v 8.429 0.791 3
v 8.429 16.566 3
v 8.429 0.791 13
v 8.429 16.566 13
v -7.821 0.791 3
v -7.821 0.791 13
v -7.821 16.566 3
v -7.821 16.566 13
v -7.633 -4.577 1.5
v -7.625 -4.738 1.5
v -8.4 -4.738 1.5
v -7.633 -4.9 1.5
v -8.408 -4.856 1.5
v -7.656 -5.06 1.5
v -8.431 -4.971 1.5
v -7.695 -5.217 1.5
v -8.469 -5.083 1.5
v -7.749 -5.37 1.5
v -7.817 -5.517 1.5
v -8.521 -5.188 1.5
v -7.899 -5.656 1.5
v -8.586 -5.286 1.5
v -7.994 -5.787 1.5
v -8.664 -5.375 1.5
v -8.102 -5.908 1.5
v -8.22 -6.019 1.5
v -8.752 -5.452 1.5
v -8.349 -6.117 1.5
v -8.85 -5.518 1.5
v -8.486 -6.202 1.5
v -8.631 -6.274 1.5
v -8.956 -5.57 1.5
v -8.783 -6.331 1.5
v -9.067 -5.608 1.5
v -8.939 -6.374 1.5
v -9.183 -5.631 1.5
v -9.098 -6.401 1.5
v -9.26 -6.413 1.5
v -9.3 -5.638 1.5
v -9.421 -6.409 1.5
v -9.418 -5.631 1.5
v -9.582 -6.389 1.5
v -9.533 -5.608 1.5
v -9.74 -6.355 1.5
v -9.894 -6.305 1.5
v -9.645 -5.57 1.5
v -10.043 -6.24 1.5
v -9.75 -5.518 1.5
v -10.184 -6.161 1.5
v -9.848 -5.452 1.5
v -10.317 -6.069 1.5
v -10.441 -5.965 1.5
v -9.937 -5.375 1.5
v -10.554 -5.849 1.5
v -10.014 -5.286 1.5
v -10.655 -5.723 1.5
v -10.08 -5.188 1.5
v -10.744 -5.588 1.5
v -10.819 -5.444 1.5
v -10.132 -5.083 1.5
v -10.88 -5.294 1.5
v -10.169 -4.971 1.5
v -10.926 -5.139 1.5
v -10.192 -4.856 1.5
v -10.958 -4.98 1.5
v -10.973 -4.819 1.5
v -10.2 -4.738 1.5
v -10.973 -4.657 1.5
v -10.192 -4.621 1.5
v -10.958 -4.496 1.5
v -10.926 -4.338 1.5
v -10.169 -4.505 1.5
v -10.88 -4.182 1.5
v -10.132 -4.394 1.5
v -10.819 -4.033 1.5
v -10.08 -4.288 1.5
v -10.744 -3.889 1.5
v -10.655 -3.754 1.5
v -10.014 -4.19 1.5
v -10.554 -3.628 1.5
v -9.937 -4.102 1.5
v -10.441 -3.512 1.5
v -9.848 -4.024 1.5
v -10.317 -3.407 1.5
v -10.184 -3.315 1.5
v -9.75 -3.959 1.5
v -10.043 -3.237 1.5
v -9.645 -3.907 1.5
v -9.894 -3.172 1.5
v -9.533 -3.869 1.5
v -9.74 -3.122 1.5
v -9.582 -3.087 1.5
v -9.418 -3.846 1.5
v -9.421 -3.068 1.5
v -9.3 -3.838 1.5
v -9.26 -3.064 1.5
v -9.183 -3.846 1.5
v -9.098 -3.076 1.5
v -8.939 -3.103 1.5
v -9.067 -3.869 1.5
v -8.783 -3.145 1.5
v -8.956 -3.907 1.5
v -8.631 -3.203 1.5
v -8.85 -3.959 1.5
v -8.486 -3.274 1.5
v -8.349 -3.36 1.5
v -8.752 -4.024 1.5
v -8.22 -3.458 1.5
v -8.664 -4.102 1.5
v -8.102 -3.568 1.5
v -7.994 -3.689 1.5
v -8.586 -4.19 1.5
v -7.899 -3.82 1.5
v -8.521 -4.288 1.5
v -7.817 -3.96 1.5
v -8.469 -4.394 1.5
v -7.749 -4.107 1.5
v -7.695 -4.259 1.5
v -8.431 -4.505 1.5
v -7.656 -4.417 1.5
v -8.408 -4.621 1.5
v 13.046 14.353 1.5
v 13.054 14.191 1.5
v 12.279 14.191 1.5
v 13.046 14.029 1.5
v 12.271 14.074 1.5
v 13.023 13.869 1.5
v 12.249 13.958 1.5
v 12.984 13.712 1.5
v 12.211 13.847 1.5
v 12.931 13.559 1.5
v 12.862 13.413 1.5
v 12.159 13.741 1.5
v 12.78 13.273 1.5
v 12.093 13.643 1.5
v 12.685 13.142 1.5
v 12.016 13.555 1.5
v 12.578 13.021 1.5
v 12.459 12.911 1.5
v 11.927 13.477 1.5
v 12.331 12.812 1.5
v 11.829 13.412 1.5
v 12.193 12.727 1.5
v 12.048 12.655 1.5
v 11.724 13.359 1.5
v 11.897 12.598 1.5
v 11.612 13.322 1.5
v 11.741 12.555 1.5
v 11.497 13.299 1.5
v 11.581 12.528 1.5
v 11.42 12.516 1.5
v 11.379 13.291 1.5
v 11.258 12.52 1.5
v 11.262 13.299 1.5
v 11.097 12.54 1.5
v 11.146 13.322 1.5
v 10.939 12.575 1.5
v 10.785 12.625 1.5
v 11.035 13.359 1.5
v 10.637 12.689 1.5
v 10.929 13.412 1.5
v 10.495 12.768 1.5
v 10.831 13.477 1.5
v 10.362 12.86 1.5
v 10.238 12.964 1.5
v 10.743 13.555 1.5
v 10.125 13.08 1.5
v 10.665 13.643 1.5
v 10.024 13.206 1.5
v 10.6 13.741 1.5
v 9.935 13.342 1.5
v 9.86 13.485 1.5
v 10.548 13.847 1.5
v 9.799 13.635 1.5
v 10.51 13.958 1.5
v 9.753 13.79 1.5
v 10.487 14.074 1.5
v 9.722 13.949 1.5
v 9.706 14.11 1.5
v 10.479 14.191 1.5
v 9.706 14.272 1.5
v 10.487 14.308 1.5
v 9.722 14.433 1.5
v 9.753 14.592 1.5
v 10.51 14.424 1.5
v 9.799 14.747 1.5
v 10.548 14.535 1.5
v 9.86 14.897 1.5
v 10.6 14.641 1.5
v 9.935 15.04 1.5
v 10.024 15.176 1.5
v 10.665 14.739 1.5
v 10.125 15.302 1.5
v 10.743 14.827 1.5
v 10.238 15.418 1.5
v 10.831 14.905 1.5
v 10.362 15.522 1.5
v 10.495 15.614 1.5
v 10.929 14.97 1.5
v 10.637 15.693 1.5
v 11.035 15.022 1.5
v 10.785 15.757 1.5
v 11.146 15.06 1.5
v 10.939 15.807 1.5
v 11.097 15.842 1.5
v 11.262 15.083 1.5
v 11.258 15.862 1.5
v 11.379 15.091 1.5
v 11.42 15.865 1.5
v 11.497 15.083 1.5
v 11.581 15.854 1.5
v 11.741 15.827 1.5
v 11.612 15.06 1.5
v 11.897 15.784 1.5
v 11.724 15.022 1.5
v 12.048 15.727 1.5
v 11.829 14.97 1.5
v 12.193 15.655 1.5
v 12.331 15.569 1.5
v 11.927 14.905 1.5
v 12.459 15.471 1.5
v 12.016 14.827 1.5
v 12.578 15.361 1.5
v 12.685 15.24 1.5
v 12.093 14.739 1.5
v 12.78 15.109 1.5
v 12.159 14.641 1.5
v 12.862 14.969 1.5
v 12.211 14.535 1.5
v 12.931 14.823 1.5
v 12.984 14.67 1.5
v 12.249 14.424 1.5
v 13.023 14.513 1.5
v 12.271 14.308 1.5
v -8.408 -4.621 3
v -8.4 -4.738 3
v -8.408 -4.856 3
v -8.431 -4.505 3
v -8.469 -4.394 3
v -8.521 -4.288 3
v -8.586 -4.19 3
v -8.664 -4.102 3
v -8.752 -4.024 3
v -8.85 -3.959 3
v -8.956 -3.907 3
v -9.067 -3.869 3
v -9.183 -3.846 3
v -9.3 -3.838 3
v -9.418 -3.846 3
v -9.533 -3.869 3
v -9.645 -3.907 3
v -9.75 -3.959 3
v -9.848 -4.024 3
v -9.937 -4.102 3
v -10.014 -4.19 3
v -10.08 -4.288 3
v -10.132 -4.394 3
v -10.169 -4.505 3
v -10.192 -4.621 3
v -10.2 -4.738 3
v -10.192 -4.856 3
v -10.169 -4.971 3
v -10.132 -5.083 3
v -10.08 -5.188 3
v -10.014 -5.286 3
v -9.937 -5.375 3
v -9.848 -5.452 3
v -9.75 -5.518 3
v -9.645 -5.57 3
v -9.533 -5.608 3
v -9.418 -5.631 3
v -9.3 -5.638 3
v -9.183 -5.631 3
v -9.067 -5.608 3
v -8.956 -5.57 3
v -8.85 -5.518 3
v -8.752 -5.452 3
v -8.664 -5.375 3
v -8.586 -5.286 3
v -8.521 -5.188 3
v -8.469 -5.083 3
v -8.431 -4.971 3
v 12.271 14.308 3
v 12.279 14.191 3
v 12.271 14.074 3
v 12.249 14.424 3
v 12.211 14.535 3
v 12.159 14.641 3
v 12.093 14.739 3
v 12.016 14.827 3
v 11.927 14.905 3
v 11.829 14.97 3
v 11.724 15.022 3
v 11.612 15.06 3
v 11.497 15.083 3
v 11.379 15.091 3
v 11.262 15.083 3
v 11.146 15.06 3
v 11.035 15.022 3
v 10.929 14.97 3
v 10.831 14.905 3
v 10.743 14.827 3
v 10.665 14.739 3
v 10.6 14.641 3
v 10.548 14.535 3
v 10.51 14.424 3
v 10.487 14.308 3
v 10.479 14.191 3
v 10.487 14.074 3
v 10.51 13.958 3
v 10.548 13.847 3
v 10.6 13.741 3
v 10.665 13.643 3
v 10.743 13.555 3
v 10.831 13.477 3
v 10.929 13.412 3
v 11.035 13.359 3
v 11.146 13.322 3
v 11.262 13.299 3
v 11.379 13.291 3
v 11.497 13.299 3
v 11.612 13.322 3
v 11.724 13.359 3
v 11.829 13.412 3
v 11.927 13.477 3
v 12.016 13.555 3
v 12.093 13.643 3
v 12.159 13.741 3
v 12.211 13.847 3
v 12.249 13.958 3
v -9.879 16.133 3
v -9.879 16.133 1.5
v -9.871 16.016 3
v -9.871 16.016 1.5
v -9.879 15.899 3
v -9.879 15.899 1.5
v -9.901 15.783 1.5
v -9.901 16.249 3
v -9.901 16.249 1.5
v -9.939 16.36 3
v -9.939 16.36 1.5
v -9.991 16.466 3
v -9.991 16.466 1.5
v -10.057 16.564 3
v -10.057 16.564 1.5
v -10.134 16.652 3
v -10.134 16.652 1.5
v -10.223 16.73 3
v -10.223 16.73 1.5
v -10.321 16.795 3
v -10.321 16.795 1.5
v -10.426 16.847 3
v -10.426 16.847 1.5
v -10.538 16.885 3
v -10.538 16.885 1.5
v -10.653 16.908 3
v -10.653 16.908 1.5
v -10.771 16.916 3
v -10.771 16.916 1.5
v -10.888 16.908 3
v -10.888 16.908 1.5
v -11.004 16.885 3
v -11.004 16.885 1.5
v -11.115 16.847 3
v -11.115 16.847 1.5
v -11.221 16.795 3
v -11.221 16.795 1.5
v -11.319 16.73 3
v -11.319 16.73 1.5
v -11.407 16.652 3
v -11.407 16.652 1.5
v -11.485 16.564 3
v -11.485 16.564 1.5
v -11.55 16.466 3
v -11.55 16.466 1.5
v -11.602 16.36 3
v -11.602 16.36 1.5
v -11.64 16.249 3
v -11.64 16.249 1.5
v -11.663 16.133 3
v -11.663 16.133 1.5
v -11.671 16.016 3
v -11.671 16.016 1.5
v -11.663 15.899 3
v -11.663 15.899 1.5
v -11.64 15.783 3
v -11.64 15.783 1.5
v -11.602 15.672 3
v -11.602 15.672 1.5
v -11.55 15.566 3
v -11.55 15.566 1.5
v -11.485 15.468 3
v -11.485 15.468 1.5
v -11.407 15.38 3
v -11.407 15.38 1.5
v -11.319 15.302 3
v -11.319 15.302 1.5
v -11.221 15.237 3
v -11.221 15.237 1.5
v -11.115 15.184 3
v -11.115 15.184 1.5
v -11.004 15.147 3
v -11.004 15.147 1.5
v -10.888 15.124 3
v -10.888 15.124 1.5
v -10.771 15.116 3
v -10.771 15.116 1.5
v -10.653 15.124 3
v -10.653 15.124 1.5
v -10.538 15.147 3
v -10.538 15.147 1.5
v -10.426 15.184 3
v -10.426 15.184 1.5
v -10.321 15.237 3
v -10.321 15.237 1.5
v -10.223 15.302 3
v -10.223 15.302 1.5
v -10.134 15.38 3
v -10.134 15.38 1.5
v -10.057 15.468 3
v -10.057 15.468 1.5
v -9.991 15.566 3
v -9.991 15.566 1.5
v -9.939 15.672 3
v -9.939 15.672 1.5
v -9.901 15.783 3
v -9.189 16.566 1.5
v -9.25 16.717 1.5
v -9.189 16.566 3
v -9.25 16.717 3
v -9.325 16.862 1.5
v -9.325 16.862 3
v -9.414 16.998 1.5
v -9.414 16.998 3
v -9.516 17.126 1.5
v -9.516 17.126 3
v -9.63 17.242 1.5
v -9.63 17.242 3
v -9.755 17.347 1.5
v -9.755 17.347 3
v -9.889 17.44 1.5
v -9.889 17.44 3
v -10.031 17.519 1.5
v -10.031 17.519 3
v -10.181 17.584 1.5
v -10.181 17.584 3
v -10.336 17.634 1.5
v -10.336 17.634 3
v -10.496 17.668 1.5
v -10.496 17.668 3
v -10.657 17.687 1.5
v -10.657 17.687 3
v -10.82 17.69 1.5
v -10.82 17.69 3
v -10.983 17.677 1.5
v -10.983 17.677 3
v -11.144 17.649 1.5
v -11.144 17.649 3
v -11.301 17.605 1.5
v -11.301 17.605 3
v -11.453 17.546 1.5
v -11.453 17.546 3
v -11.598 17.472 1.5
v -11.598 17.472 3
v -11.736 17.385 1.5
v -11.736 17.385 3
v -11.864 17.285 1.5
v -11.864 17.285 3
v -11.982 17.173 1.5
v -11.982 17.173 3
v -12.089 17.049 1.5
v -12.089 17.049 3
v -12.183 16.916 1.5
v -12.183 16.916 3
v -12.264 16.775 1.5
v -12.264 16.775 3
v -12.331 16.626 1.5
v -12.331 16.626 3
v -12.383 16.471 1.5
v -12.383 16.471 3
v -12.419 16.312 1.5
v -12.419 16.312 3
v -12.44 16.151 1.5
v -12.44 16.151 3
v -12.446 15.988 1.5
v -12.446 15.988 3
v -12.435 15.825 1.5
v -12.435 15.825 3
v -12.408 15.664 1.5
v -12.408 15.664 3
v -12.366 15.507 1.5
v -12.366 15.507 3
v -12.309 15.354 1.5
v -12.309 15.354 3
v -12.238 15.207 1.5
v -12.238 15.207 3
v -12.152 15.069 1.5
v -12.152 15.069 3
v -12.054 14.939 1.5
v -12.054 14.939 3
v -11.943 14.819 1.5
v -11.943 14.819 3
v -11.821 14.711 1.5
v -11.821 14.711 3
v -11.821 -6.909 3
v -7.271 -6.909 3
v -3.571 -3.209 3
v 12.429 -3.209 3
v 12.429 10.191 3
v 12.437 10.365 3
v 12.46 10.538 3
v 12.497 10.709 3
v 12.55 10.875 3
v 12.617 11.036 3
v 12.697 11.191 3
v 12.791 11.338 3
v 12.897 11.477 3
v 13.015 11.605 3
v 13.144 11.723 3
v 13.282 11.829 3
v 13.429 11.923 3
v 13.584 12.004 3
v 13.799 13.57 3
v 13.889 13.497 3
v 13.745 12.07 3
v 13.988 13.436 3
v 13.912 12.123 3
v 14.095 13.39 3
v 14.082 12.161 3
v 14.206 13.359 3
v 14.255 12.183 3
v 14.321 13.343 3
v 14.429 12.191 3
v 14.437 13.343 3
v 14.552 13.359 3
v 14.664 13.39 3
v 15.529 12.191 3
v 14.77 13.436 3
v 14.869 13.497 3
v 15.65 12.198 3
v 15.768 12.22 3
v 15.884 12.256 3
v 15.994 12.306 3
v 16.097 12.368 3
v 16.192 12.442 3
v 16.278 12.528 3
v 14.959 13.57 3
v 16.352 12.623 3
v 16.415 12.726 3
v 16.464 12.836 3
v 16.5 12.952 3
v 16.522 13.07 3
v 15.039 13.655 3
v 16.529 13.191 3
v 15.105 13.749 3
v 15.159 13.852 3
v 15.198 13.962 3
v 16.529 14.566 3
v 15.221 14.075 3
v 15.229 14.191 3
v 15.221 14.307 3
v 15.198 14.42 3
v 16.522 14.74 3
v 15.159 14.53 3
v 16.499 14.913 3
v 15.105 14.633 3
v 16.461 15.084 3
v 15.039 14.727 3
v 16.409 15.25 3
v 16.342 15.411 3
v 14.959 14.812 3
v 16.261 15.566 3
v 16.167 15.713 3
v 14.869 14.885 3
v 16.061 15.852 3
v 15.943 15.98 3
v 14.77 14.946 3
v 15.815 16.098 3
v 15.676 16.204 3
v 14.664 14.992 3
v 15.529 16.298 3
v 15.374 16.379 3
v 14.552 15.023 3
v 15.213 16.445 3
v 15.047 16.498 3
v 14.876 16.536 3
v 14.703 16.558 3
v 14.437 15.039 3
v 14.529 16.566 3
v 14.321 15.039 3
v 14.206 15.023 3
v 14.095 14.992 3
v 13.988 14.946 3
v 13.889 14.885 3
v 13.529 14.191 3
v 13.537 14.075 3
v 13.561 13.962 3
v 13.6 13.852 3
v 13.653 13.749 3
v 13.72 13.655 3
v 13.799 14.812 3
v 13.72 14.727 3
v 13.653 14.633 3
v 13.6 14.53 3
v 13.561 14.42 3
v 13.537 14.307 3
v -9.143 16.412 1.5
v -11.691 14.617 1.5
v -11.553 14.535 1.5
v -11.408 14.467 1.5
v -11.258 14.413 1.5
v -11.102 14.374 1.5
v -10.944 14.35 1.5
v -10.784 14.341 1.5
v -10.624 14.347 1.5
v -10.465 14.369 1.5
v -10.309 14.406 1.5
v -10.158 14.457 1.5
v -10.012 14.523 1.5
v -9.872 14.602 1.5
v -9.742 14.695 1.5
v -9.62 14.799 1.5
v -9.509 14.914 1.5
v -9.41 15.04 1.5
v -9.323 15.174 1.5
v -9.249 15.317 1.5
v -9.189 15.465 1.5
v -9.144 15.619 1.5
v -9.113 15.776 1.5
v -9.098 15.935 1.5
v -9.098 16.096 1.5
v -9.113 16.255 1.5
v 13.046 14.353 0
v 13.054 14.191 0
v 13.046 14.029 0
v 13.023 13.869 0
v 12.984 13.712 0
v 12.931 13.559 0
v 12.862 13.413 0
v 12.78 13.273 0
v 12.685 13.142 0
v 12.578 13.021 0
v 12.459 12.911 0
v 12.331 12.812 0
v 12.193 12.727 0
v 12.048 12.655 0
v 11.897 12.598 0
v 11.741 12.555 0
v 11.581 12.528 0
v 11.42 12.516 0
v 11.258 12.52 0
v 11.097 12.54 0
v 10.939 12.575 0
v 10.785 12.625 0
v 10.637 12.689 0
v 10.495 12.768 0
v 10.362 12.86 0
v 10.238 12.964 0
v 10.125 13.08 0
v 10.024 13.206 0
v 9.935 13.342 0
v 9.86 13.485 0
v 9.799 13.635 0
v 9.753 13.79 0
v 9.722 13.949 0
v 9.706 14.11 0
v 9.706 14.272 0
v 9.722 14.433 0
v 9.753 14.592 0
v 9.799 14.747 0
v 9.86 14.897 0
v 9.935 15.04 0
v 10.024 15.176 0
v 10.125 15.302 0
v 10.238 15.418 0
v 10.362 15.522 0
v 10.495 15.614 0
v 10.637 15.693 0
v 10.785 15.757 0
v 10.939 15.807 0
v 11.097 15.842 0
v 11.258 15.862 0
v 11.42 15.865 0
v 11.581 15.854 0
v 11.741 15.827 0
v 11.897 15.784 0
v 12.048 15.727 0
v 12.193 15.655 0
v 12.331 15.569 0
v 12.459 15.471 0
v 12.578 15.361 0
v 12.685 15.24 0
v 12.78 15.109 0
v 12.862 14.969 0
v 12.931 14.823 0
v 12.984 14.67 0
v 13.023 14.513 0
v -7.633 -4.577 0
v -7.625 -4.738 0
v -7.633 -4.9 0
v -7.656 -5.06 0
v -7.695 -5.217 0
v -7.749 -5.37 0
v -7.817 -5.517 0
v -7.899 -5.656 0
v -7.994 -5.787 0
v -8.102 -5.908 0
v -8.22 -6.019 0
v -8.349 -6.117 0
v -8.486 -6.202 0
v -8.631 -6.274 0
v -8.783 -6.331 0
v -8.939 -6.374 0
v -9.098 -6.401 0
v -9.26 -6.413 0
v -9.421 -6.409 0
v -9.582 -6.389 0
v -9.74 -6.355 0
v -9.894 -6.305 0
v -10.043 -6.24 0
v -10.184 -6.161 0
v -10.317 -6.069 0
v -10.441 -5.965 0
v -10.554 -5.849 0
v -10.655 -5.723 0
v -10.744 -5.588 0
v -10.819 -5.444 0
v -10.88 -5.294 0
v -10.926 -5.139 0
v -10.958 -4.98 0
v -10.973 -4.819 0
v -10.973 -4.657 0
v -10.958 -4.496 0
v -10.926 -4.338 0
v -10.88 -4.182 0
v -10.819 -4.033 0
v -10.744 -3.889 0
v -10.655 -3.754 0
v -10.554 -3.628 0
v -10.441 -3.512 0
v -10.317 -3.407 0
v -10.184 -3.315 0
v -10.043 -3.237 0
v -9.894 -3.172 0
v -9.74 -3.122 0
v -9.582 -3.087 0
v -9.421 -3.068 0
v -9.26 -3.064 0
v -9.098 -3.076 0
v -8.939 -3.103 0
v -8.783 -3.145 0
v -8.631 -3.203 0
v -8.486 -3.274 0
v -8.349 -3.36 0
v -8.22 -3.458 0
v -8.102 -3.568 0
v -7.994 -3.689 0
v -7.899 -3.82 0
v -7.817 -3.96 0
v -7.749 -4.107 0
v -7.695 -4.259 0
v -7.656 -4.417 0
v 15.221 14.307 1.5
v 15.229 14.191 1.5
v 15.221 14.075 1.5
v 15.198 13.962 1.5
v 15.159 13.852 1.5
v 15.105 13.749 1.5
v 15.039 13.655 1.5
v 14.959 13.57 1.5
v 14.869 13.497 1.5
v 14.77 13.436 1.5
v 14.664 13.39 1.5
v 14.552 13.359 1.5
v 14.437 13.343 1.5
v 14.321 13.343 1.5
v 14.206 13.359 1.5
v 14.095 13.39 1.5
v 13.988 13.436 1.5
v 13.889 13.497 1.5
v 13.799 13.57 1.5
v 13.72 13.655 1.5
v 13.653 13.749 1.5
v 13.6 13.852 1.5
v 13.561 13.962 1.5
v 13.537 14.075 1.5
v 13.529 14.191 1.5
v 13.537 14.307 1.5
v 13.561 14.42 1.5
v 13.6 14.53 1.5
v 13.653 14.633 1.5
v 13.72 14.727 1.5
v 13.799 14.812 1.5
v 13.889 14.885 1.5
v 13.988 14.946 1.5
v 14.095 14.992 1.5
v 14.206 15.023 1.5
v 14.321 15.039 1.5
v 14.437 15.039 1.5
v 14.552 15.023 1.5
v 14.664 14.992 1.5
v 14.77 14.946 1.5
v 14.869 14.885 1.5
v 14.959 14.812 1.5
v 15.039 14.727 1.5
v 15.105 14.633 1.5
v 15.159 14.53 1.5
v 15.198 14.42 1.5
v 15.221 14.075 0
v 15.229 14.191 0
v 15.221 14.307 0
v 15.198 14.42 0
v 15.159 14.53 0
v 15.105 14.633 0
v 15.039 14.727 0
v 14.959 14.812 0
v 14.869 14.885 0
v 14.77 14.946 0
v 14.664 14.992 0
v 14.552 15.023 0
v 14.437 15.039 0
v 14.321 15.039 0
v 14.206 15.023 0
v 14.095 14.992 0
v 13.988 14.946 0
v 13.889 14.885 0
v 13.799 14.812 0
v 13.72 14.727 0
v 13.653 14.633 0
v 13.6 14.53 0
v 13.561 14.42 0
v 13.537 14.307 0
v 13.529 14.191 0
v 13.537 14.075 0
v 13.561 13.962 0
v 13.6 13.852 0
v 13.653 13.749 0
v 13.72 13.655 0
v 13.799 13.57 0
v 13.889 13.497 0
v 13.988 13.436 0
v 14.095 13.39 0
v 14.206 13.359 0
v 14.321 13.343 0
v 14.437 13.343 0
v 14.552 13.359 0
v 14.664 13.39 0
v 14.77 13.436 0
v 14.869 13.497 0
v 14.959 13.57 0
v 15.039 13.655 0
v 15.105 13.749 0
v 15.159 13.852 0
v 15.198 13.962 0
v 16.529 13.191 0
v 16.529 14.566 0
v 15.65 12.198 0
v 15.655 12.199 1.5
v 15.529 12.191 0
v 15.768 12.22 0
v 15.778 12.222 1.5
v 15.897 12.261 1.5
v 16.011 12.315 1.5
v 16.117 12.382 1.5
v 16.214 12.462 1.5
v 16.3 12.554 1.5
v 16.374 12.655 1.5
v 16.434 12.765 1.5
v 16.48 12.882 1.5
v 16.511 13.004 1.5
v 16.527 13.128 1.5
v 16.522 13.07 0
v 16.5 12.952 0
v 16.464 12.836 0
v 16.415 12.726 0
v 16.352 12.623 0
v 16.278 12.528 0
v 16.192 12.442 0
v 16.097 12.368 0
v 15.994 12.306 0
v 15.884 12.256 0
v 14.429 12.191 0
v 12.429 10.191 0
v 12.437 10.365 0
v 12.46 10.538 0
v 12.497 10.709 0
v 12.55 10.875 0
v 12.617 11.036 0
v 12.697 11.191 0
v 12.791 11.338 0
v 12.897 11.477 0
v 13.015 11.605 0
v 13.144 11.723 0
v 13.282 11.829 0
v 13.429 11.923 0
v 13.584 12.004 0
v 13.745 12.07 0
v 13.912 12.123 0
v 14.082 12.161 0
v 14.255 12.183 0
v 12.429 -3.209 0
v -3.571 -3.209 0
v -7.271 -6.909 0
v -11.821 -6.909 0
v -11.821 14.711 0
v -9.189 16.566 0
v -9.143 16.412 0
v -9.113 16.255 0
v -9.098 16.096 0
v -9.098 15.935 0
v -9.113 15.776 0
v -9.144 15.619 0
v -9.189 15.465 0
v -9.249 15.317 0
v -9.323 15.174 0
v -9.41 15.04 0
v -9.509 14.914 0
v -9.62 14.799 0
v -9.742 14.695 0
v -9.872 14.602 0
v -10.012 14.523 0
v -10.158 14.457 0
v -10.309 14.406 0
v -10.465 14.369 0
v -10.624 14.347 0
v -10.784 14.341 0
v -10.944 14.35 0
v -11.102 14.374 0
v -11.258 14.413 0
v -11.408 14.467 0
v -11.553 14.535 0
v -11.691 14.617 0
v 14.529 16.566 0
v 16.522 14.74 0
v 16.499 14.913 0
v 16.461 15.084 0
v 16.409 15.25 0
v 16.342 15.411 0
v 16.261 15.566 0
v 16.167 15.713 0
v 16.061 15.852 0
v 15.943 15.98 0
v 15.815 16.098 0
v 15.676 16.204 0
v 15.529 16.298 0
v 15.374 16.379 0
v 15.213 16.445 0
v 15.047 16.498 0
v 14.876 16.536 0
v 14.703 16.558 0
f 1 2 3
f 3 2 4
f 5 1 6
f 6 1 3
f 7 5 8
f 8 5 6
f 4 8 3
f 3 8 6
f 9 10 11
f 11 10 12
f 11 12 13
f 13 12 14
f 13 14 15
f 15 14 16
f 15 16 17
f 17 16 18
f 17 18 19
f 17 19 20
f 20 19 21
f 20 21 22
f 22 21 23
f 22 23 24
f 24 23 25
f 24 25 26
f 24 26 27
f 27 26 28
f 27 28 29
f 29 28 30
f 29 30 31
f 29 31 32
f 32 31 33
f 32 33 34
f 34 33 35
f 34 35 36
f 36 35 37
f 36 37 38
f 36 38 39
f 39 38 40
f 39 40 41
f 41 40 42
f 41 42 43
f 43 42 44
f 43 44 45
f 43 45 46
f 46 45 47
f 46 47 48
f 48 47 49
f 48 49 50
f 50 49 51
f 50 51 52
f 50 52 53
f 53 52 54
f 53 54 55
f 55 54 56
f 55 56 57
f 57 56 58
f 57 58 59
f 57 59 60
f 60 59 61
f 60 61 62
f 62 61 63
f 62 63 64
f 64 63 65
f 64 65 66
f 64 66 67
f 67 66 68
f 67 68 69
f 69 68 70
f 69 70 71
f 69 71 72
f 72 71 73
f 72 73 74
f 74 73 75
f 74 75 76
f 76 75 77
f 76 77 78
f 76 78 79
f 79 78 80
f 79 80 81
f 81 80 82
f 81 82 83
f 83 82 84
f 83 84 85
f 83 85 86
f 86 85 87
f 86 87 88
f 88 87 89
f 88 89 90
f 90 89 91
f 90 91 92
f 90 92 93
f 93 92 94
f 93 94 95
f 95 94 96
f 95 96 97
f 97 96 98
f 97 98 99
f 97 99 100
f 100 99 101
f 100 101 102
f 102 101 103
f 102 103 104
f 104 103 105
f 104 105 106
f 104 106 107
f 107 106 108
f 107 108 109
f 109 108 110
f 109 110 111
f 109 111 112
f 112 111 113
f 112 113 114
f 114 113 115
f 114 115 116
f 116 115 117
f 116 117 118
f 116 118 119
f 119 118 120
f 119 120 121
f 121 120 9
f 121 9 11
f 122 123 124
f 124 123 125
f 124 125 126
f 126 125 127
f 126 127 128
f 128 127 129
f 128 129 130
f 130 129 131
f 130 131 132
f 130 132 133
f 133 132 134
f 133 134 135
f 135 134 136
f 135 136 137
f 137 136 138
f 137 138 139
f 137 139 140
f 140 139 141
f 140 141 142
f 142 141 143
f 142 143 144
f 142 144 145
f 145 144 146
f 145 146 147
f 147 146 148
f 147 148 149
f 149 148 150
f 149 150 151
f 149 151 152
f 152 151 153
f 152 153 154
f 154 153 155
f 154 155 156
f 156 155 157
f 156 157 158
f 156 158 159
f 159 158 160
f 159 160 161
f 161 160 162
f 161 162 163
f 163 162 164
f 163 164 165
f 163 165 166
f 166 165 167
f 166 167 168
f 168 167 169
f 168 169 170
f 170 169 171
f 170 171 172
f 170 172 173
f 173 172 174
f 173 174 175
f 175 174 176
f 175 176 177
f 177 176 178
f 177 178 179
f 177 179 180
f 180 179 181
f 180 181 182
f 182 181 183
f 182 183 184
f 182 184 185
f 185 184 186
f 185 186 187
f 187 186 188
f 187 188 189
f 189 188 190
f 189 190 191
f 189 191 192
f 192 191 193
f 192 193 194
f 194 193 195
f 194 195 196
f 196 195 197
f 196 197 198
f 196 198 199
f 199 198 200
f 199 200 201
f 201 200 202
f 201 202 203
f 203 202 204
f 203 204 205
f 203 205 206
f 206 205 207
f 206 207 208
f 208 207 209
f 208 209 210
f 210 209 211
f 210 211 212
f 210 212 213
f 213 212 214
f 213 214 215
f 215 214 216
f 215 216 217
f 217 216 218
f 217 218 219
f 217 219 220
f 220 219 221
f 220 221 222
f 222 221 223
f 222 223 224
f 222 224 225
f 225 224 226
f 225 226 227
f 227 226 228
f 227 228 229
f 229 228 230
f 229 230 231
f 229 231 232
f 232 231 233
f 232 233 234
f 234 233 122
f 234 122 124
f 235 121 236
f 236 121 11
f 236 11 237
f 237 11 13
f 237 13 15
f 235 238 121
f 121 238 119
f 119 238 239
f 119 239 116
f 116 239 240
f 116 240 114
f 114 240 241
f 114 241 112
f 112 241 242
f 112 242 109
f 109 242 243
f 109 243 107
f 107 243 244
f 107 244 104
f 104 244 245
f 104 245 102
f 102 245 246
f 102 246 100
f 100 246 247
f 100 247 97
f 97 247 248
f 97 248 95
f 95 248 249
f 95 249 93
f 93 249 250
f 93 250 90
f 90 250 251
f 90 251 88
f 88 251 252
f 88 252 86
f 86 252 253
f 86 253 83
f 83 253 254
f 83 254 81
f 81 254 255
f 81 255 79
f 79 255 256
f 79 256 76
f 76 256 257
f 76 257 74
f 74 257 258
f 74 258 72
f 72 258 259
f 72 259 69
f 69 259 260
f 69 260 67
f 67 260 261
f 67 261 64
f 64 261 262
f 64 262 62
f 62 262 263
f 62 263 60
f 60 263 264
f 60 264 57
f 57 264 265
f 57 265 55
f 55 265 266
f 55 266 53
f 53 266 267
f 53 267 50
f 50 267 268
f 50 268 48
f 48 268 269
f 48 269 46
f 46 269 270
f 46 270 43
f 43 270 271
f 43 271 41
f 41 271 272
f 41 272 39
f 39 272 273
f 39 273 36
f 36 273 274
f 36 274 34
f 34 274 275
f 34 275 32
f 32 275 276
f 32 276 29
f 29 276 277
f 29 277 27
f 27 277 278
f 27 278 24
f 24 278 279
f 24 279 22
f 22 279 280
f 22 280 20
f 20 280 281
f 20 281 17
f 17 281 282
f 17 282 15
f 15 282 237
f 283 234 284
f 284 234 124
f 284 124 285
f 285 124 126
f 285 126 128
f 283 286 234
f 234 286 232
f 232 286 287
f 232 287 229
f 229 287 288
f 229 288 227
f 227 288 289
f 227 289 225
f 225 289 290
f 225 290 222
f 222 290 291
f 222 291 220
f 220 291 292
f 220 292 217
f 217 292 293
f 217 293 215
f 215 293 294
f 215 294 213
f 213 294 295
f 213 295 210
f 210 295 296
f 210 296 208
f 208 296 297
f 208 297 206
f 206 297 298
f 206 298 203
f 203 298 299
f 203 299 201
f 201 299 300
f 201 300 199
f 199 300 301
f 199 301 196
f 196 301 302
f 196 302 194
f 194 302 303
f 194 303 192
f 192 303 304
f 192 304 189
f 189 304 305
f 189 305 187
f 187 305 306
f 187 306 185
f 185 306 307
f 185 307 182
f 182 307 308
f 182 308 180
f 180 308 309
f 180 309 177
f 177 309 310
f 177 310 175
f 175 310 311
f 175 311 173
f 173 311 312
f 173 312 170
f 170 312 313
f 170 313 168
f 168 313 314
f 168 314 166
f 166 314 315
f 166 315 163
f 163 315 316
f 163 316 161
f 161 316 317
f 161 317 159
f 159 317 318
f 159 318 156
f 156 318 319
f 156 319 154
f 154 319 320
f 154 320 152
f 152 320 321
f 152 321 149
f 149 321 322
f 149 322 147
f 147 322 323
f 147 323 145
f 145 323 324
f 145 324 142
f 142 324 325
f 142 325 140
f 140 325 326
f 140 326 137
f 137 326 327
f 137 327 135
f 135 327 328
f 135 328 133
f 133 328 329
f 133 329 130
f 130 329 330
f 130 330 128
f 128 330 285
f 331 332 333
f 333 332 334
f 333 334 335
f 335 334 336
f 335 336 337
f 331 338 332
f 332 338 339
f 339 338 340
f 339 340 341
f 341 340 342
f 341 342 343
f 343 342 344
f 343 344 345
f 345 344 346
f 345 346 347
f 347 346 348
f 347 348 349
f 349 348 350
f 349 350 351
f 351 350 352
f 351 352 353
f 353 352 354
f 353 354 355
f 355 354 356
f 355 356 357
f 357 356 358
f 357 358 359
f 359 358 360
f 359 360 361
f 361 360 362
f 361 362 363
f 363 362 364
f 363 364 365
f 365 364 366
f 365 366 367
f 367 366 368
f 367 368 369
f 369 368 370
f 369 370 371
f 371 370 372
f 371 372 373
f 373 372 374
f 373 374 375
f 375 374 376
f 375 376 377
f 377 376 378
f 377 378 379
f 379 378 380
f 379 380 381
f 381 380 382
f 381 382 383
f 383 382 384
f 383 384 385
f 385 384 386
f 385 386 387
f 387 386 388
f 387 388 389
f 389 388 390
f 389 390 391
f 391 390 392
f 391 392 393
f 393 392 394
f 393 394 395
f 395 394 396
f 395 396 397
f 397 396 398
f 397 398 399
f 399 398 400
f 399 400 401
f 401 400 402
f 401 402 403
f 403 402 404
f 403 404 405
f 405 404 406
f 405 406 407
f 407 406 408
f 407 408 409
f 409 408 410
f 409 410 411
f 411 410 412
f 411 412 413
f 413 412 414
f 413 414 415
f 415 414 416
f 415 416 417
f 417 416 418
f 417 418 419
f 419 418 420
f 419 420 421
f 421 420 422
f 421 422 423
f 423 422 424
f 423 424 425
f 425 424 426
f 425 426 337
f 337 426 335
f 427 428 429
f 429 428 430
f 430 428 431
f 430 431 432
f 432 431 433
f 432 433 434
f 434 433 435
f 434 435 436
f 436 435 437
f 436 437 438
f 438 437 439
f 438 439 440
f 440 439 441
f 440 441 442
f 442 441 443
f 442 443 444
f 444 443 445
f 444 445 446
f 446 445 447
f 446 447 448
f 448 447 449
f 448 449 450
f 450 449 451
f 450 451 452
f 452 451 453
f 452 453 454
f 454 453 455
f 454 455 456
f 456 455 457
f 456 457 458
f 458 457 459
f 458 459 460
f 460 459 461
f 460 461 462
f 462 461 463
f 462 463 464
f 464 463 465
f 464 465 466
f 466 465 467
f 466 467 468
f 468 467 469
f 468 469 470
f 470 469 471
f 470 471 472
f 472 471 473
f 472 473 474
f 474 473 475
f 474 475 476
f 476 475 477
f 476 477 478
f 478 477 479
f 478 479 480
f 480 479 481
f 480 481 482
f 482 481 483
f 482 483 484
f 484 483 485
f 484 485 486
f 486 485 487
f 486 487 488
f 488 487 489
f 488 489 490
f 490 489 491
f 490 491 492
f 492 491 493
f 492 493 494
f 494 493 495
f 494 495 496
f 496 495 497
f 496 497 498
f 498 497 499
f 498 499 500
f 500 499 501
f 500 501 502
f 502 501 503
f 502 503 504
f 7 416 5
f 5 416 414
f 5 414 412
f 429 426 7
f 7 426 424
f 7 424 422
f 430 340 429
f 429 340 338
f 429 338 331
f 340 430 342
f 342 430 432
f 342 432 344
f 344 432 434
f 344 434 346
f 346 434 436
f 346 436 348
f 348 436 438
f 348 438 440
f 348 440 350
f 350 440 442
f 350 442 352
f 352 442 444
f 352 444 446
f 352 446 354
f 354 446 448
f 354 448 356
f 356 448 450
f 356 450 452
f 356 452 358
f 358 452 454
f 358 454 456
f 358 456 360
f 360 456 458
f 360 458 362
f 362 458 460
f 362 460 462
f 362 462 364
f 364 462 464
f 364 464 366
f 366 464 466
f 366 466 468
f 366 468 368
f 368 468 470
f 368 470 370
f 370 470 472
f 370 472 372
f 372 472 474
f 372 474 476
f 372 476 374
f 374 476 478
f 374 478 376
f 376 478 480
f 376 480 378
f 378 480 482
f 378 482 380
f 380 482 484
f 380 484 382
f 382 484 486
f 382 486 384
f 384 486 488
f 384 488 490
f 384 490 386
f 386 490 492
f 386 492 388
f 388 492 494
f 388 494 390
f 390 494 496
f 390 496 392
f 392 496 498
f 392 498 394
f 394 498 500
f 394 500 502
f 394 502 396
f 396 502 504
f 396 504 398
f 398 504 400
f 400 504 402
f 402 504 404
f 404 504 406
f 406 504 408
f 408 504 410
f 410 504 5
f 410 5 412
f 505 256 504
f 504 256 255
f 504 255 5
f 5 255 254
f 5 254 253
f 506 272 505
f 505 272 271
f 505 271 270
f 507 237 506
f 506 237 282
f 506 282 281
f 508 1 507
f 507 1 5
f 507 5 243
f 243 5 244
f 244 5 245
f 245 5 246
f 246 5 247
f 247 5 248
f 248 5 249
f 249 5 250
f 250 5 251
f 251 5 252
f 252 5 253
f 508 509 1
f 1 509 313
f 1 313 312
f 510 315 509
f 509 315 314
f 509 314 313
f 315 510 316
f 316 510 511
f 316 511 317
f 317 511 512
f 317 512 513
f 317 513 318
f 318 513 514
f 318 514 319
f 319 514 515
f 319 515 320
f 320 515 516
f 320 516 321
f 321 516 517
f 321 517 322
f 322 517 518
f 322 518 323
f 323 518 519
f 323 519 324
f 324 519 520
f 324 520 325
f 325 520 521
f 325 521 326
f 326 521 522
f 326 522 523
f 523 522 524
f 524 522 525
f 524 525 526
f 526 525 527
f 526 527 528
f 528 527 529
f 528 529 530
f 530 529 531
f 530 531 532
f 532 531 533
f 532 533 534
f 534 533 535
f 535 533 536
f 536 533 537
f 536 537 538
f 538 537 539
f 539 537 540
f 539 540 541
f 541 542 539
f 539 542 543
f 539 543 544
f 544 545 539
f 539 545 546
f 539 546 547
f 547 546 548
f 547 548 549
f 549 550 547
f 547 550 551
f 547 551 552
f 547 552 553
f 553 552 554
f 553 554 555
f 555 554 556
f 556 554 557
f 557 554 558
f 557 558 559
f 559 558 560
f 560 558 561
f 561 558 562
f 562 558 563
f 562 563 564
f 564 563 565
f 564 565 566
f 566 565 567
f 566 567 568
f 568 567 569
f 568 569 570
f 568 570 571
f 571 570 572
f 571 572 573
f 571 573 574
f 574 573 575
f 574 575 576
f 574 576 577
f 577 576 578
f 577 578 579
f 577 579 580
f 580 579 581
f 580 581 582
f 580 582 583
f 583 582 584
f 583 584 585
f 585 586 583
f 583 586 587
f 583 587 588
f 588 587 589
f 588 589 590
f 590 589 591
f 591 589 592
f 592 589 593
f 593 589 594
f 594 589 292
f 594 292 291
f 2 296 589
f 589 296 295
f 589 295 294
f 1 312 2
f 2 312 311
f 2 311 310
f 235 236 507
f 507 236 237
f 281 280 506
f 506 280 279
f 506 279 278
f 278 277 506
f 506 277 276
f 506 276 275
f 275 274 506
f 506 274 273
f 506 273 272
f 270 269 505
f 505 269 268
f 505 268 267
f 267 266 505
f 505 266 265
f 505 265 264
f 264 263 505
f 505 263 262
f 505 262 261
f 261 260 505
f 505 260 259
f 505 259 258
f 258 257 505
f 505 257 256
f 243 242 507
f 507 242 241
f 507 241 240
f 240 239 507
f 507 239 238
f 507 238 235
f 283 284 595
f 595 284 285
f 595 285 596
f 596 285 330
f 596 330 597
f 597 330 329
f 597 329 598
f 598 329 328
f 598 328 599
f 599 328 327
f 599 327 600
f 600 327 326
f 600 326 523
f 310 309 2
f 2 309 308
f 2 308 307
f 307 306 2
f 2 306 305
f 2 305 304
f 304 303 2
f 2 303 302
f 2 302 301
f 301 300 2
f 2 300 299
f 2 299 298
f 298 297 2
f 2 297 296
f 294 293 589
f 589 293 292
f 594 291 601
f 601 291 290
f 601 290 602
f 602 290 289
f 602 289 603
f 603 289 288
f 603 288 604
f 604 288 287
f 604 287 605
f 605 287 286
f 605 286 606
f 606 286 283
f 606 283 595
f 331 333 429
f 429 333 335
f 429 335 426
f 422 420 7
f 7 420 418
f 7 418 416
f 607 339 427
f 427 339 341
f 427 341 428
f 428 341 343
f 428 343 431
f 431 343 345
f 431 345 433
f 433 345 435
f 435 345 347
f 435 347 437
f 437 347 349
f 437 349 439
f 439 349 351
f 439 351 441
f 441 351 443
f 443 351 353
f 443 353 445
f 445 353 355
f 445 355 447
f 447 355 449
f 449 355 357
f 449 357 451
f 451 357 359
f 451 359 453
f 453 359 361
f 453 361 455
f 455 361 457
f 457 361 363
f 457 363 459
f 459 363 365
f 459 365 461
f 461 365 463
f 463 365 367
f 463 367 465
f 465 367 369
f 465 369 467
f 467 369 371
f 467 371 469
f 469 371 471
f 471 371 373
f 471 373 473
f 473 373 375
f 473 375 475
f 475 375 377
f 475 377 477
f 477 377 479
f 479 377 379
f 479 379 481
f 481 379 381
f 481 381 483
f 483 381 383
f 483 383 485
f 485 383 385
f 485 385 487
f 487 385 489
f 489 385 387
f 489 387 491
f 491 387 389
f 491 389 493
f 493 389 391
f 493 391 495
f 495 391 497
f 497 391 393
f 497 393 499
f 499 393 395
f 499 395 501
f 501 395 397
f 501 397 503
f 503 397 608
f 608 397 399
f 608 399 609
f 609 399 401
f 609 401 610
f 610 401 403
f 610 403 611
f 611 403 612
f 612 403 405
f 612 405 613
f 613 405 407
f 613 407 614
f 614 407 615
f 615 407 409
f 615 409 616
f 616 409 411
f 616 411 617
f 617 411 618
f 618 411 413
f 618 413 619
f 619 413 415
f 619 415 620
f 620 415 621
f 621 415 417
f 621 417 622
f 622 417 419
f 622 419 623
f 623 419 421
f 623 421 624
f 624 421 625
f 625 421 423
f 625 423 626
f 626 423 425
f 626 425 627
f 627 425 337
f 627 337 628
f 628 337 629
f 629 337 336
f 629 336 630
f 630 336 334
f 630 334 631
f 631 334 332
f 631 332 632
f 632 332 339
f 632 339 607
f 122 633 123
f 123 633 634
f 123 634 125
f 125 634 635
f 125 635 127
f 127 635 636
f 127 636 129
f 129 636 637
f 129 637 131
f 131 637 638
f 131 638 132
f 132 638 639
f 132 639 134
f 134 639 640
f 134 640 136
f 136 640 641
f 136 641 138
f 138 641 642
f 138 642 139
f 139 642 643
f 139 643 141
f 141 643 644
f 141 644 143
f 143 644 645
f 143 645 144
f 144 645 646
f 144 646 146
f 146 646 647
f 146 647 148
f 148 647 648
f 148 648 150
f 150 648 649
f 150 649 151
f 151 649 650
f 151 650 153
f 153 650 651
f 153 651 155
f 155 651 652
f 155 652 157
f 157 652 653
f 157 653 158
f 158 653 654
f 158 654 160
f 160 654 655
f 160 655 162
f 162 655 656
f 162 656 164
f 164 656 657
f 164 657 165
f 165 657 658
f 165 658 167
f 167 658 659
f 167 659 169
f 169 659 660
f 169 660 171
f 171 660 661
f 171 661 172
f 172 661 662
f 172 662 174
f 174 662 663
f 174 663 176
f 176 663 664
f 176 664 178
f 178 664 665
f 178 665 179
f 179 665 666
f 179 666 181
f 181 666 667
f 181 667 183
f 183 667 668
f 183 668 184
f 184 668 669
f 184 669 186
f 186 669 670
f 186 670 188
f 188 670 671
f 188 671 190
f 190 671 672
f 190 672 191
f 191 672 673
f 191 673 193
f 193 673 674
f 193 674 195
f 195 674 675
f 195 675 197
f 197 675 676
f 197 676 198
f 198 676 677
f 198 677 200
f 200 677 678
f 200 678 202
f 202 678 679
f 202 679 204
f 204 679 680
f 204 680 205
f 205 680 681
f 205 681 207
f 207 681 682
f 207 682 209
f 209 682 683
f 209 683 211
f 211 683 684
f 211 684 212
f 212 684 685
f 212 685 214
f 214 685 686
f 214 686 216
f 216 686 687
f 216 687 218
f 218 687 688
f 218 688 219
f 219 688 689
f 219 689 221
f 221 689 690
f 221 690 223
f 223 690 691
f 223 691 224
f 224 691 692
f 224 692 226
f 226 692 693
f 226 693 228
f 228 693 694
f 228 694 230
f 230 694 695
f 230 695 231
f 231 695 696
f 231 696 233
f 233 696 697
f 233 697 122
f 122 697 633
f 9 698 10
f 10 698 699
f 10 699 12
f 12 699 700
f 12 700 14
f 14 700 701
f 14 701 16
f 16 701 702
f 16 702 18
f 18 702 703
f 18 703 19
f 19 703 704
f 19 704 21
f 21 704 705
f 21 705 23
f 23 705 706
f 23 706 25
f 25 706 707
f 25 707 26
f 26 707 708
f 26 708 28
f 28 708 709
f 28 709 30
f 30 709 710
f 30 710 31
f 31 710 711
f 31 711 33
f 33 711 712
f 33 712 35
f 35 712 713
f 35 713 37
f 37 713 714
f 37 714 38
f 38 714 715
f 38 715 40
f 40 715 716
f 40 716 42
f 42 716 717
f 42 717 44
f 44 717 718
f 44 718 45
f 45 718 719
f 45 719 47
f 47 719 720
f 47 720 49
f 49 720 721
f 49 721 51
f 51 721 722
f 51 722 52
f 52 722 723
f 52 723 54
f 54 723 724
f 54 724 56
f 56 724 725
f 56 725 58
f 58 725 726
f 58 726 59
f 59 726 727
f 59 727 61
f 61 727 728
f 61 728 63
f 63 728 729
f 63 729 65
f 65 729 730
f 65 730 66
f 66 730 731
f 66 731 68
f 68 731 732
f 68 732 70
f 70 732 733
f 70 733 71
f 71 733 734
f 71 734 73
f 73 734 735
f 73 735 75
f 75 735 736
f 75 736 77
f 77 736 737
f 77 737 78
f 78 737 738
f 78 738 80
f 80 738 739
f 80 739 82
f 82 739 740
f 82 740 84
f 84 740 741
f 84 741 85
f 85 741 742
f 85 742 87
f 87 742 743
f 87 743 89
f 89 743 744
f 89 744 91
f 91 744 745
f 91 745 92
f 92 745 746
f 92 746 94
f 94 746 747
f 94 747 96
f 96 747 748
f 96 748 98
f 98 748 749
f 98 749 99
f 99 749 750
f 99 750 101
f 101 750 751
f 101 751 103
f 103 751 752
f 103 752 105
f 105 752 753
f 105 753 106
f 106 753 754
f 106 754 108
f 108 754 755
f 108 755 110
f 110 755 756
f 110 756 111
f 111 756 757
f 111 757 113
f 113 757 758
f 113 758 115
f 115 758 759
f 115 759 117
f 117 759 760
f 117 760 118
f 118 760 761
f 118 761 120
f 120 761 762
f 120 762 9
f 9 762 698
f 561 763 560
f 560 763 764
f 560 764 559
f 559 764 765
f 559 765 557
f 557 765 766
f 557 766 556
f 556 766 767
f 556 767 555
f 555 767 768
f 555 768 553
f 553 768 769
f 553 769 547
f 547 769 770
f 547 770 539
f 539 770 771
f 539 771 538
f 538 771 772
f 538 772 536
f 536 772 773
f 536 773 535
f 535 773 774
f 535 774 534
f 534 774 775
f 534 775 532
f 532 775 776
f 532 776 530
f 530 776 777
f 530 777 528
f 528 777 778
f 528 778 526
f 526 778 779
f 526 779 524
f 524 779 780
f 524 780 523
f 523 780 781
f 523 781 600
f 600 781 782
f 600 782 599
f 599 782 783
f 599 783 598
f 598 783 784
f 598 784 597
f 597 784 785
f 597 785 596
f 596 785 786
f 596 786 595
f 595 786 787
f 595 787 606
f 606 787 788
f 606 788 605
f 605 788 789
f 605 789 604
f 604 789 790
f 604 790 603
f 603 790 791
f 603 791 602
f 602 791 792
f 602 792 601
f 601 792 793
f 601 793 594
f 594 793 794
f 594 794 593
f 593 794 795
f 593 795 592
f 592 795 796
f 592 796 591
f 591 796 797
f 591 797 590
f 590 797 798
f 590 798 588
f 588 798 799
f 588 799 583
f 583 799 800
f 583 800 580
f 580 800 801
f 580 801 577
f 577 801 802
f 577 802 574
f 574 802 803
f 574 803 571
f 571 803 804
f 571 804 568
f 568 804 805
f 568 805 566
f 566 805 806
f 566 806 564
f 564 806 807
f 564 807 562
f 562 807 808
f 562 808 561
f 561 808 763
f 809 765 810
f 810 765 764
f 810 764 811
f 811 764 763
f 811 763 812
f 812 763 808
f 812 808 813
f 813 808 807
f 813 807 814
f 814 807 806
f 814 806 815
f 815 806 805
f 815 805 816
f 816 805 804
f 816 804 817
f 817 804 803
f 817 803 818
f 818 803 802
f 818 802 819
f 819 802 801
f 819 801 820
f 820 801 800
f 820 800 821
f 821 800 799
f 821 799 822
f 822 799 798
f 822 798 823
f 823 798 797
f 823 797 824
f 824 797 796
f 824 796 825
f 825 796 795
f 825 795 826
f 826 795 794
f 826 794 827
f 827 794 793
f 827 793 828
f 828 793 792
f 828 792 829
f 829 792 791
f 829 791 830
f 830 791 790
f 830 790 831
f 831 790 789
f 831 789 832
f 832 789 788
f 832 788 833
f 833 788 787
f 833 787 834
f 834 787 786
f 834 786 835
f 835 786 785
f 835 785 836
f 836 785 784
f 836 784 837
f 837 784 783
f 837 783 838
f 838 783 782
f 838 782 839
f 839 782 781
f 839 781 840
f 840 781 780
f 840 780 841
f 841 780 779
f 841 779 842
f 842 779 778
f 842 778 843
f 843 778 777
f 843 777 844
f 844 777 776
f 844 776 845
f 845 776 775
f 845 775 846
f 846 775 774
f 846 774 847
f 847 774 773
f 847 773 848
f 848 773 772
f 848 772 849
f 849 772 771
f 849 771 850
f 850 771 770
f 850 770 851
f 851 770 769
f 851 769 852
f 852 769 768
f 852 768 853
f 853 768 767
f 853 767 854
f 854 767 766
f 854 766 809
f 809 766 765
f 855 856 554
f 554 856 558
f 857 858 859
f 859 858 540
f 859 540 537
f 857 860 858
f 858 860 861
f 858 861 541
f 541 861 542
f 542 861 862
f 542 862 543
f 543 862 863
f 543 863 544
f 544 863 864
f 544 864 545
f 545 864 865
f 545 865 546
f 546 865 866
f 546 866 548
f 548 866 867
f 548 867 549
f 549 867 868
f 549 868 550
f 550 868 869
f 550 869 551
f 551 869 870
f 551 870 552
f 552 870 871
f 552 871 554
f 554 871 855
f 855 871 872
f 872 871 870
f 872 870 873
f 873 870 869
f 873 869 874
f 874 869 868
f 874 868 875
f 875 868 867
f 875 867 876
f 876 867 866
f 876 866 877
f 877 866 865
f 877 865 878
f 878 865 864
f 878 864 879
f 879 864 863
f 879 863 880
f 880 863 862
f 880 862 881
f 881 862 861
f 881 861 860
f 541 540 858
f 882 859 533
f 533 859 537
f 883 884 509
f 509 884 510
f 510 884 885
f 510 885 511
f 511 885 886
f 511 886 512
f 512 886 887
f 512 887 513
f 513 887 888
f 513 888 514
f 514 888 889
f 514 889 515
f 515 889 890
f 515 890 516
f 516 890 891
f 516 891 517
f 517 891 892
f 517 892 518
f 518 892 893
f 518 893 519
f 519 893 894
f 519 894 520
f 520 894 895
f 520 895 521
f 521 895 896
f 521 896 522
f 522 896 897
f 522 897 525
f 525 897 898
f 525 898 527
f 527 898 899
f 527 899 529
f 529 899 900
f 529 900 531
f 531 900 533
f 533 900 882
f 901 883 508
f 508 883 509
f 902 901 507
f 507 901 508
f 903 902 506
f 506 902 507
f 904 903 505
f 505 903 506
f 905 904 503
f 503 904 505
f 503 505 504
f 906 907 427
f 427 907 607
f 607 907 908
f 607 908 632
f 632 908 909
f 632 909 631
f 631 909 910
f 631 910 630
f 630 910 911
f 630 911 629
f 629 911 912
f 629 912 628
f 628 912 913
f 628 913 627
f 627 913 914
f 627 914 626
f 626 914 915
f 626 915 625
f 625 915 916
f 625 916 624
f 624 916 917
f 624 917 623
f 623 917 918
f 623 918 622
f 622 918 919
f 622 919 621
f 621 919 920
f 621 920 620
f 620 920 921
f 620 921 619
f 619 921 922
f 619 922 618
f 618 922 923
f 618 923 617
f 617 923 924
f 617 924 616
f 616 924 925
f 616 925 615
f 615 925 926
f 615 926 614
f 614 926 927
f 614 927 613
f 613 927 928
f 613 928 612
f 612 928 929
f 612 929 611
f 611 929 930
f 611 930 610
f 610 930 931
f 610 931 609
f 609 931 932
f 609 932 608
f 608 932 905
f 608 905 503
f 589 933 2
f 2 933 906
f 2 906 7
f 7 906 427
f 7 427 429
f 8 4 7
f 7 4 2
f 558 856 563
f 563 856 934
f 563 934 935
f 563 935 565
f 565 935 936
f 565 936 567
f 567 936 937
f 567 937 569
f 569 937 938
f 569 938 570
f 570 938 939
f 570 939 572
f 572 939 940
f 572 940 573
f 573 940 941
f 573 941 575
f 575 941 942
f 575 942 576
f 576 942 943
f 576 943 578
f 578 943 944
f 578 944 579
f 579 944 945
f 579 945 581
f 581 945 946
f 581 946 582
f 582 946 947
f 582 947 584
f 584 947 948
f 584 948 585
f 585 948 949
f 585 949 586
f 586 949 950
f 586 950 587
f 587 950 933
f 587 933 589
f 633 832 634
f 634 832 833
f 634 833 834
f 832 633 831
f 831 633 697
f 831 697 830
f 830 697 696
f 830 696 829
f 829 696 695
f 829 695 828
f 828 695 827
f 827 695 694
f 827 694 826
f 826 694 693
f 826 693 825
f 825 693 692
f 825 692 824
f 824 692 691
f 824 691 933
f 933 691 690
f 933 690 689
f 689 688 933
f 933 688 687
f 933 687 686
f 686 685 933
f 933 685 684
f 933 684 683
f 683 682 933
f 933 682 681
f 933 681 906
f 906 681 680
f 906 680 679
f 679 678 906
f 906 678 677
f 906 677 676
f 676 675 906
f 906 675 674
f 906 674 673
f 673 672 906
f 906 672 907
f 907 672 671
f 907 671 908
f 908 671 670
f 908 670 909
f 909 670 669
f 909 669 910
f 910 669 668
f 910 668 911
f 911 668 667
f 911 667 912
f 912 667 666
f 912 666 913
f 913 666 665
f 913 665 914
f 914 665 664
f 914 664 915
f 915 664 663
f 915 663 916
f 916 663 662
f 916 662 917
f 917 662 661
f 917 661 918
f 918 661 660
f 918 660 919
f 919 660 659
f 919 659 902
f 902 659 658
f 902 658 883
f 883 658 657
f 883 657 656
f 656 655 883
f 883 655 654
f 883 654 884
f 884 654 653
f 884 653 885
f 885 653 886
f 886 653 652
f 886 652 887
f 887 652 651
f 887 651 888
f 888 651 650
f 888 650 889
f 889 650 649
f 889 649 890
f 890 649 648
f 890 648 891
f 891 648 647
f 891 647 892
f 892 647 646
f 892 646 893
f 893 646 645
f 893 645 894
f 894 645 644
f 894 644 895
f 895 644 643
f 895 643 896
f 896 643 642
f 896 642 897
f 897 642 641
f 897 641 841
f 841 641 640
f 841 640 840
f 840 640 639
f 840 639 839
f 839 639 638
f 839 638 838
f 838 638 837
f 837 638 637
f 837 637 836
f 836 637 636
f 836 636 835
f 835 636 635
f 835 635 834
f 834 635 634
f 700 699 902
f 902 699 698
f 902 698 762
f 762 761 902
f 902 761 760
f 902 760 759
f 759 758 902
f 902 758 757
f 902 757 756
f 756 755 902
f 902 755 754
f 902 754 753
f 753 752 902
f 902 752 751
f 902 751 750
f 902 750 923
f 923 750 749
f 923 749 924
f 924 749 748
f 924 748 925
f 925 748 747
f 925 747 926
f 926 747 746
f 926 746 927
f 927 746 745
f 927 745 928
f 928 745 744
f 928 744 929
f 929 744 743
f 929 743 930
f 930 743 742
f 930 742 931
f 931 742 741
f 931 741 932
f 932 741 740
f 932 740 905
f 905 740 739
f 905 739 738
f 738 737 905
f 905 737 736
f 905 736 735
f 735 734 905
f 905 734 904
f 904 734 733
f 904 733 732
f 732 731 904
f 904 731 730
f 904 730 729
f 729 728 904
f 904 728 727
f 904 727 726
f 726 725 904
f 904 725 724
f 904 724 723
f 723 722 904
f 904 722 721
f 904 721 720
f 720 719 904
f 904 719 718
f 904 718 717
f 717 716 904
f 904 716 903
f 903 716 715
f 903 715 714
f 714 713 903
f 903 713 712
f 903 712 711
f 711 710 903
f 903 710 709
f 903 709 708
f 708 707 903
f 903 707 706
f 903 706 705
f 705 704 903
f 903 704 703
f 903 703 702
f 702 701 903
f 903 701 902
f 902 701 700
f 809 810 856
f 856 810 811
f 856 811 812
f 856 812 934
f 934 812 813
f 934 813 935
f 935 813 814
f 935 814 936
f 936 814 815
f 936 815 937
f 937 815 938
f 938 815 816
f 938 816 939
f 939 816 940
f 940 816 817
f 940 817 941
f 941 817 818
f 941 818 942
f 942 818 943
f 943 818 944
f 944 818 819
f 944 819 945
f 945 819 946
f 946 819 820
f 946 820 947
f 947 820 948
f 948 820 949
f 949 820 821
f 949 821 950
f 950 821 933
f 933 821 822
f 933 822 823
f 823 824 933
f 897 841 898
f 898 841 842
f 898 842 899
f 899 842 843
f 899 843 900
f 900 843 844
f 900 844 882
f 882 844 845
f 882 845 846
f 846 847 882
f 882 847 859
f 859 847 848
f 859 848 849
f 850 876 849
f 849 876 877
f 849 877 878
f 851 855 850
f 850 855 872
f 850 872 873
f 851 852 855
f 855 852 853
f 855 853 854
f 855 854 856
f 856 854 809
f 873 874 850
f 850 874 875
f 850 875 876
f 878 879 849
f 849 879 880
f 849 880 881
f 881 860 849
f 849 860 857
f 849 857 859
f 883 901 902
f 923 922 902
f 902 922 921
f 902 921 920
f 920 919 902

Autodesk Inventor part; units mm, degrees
ref_plane "YZ Plane" through (0, 0, 0) normal (1, 0, 0) x (0, 1, 0)
ref_plane "XZ Plane" through (0, 0, 0) normal (0, 1, 0) x (-1, 0, 0)
sketch "Skizze1" plane through (0, 0, 0) normal (0, 0, 1) x (1, 0, 0)
  line L0 (14.1792, -17.284) -> (14.1792, 17.716)
  line L1 (14.1792, 17.716) -> (-11.8208, 17.716)
  line L2 (-11.8208, 17.716) -> (-11.8208, -17.284)
  line L3 (-11.8208, -17.284) -> (14.1792, -17.284)
  line L4 (14.1792, -17.284) -> (-11.8208, 17.716) construction
  line L5 (14.1792, 17.716) -> (-11.8208, -17.284) construction
  line L6 (3.4292, 10.341) -> (-6.0708, 10.341) construction
  line L7 (3.4292, 3.091) -> (3.4292, 10.341) construction
  line L8 (-6.0708, 3.091) -> (3.4292, 3.091) construction
  line L9 (-6.0708, 10.341) -> (-6.0708, 3.091) construction
  line L10 (3.4292, 10.341) -> (-6.0708, 3.091) construction
  line L11 (3.4292, 3.091) -> (-6.0708, 10.341) construction
  point P0 (0, 0)
  point P1 (1.1792, 0.216)
  point P2 (1.1792, 0.216)
  point P3 (-1.3208, 6.716)
  point P4 (-1.3208, 6.716)
  point P5 (1.1792, 0.216)
  point P6 (-1.3208, 6.716)
  dimension "d0" = 26
  dimension "d1" = 35
  dimension "d2" = 11
  dimension "d3" = 2.5
sketch "Skizze2" plane through (0, 0, 0) normal (0, 0, 1) x (1, 0, 0)
  line L0 (-3.4208, 1.091) -> (-7.8208, 1.091) projected
  line L1 (-7.8208, 1.091) -> (-7.8208, 12.341) projected
  line L2 (-7.8208, 12.341) -> (-3.4208, 12.341) projected
  line L3 (5.1792, 1.091) -> (0.7792, 1.091) projected
  line L4 (5.1792, 12.341) -> (5.1792, 1.091) projected
  line L5 (0.7792, 12.341) -> (5.1792, 12.341) projected
  circle A0 centre (-9.3002, -4.7384) radius 1.575 construction
  circle A1 centre (11.3792, 14.191) radius 1.575 construction
  circle A2 centre (-9.3002, -4.7384) radius 0.7 construction
  circle A3 centre (-10.7708, 16.016) radius 0.7 construction
  circle A4 centre (11.3792, 14.191) radius 0.7 construction
  line L6 (-3.4208, 12.341) -> (-3.4208, 13.366) projected
  line L7 (-3.4208, 13.366) -> (0.7792, 13.366) projected
  line L8 (0.7792, 0.066) -> (-3.4208, 0.066) projected
  line L9 (-3.4208, 0.066) -> (-3.4208, 1.091) projected
  line L10 (0.7792, 1.091) -> (0.7792, 0.066) projected
  line L11 (0.7792, 13.366) -> (0.7792, 12.341) projected
  line L12 (-12.2708, -9.259) -> (-12.2708, 10.741) construction
  line L13 (14.5292, 16.566) -> (-9.295, 16.566) construction
  arc A5 (16.5292, 14.566) -> (14.5292, 16.566) centre (14.5292, 14.566) ccw projected
  line L14 (16.5292, 14.566) -> (16.5292, 13.191) projected
  arc A6 (15.5292, 12.191) -> (16.5292, 13.191) centre (15.5292, 13.191) ccw projected
  line L15 (15.5292, 12.191) -> (14.4292, 12.191) projected
  arc A7 (14.4292, 12.191) -> (12.4292, 10.191) centre (14.4292, 10.191) ccw projected
  line L16 (12.4292, 10.191) -> (12.4292, -3.209) projected
  line L17 (-3.5708, -3.209) -> (12.4292, -3.209) projected
  line L18 (-8.1002, -7.7384) -> (-3.5708, -3.209) projected
  arc A8 (-10.7708, 17.591) -> (-9.295, 16.566) centre (-10.7708, 16.016) ccw construction
  line L19 (-8.1002, -8.7384) -> (-8.1002, -7.7384) construction
  circle A9 centre (-9.3002, -8.7384) radius 0.75 construction
  circle A10 centre (-9.3002, -8.7384) radius 1.2 construction
  line L20 (-10.8208, -7.909) -> (-11.8208, -6.909) construction
  line L21 (-11.8208, -6.909) -> (-11.8208, 14.7109)
  line L22 (-11.8208, -6.909) -> (-10.4976, -8.2322)
  arc A11 (-8.1002, -8.2384) -> (-8.2864, -7.9246) centre (-9.3002, -8.7384) ccw construction
  line L23 (-8.1002, -8.2384) -> (-8.1002, -7.7384) construction
  circle A12 centre (-9.3002, -4.7384) radius 1.675
  circle A13 centre (11.3792, 14.191) radius 1.675
  line L24 (14.5292, 16.566) -> (-9.1887, 16.566)
  arc A14 (-11.8208, 14.7109) -> (-9.1887, 16.566) centre (-10.7708, 16.016) ccw
  circle A15 centre (14.3792, 14.191) radius 0.75 construction
  circle A16 centre (14.3792, 14.191) radius 0.85
  line L25 (-8.1002, -7.7384) -> (-8.2864, -7.9246) construction
  arc A17 (-8.2864, -7.9246) -> (-10.4976, -8.2322) centre (-9.3002, -8.7384) ccw construction
  line L26 (-11.8208, -6.909) -> (-7.2708, -6.909)
  point P0 (0, 0)
  dimension "d4" = 0.1
  dimension "d5" = 0.1
  dimension "d6" = 0.1
  dimension "d7" = 0.1
  dimension "d10" = 0.1
extrude "Extrusion1" add sketch "Skizze2" along normal blind 1.5 contours L0 L1 L2 L6 L7 L11 L5 L4 L3 L10 L8 L9 | L14 A6 L15 A7 L16 L17 L18 L26 L21 A14 L24 A5
sketch "Skizze3" plane through (0, 0, 1.5) normal (0, 0, 1) x (1, 0, 0)
  circle A0 centre (11.3792, 14.191) radius 1.675 construction
  circle A1 centre (-9.3002, -4.7384) radius 1.675 construction
  circle A2 centre (14.3792, 14.191) radius 0.85 projected
  arc A3 (16.5292, 14.566) -> (14.5292, 16.566) centre (14.5292, 14.566) ccw projected
  line L0 (14.5292, 16.566) -> (-9.1887, 16.566) projected
  arc A4 (-11.8208, 14.7109) -> (-9.1887, 16.566) centre (-10.7708, 16.016) ccw construction
  line L1 (-11.8208, 14.7109) -> (-11.8208, -6.909) projected
  line L2 (-7.2708, -6.909) -> (-3.5708, -3.209) projected
  line L3 (-3.5708, -3.209) -> (12.4292, -3.209) projected
  line L4 (12.4292, -3.209) -> (12.4292, 10.191) projected
  arc A5 (14.4292, 12.191) -> (12.4292, 10.191) centre (14.4292, 10.191) ccw projected
  line L5 (14.4292, 12.191) -> (15.5292, 12.191) projected
  arc A6 (15.5292, 12.191) -> (16.5292, 13.191) centre (15.5292, 13.191) ccw projected
  line L6 (16.5292, 13.191) -> (16.5292, 14.566) projected
  circle A7 centre (11.3792, 14.191) radius 0.7 construction
  circle A8 centre (-9.3002, -4.7384) radius 0.7 construction
  circle A9 centre (-9.3002, -8.7384) radius 0.75 construction
  circle A10 centre (-9.3002, -8.7384) radius 0.85
  line L7 (-7.2708, -6.909) -> (-3.5708, -3.209) projected
  arc A11 (-10.4976, -8.2322) -> (-8.2864, -7.9246) centre (-9.3002, -8.7384) ccw
  arc A12 (-9.1887, 16.566) -> (-11.8208, 14.7109) centre (-10.7708, 16.016) ccw
  circle A13 centre (-10.7708, 16.016) radius 0.7 construction
  circle A14 centre (-10.7708, 16.016) radius 0.9
  circle A15 centre (11.3792, 14.191) radius 0.9
  circle A16 centre (-9.3002, -4.7384) radius 0.9
  line L8 (-11.8208, -6.909) -> (-7.2708, -6.909) projected
  point P0 (0, 0)
  dimension "d11" = 0.1
  dimension "d13" = 1.8
  dimension "d14" = 1.8
  dimension "d15" = 1.8
ref_plane "Arbeitsebene1" through (-9.7716, -9.2098, 6) normal (0, 0, 1) x (1, 0, 0)
extrude "Extrusion2" add sketch "Skizze3" along normal blind 1.5 contours L6 A6 L5 A5 L4 L3 L2 L8 L1 A12 L0 A3
sketch "Skizze4" plane through (-9.1887, 16.566, 3) normal (0, 0, 1) x (1, 0, 0)
  circle A0 centre (-0.1115, -21.3043) radius 0.7 construction
  circle A1 centre (-1.5821, -0.55) radius 0.7 construction
  circle A2 centre (20.5679, -2.375) radius 0.7 construction
  point P0 (9.1887, -16.566)
sketch "Sketch8" plane through (0, 0, 3) normal (0, 0, 1) x (1, 0, 0)
  circle A0 centre (-10.7708, 16.016) radius 0.9 projected
  circle A1 centre (14.3792, 14.191) radius 0.85 projected
  arc A2 (16.5292, 14.566) -> (14.5292, 16.566) centre (14.5292, 14.566) ccw projected
  line L0 (14.5292, 16.566) -> (-9.1887, 16.566) projected
  arc A3 (-9.1887, 16.566) -> (-11.8208, 14.7109) centre (-10.7708, 16.016) ccw projected
  line L1 (-11.8208, 14.7109) -> (-11.8208, -6.909) projected
  line L2 (-11.8208, -6.909) -> (-7.2708, -6.909) projected
  line L3 (-3.5708, -3.209) -> (12.4292, -3.209) projected
  line L4 (12.4292, -3.209) -> (12.4292, 10.191) projected
  arc A4 (14.4292, 12.191) -> (12.4292, 10.191) centre (14.4292, 10.191) ccw projected
  line L5 (14.4292, 12.191) -> (15.5292, 12.191) projected
  arc A5 (15.5292, 12.191) -> (16.5292, 13.191) centre (15.5292, 13.191) ccw projected
  line L6 (16.5292, 13.191) -> (16.5292, 14.566) projected
  line L7 (-7.2708, -6.909) -> (-3.5708, -3.209) projected
  line L8 (-7.8208, 16.566) -> (8.4292, 16.566)
  line L9 (8.4292, 16.566) -> (8.4292, 0.791)
  line L10 (8.4292, 0.791) -> (-7.8208, 0.791)
  line L11 (-7.8208, 0.791) -> (-7.8208, 16.566)
  dimension "d37" = 4
  dimension "d38" = 4
  dimension "d39" = 4
  dimension "d40" = 0
extrude "Extrusion6" add sketch "Sketch8" along normal blind 10 contours L9 L10 L11 L0
properties part number "Raman2Go_Adapterplatte2_XY-TischChina"
